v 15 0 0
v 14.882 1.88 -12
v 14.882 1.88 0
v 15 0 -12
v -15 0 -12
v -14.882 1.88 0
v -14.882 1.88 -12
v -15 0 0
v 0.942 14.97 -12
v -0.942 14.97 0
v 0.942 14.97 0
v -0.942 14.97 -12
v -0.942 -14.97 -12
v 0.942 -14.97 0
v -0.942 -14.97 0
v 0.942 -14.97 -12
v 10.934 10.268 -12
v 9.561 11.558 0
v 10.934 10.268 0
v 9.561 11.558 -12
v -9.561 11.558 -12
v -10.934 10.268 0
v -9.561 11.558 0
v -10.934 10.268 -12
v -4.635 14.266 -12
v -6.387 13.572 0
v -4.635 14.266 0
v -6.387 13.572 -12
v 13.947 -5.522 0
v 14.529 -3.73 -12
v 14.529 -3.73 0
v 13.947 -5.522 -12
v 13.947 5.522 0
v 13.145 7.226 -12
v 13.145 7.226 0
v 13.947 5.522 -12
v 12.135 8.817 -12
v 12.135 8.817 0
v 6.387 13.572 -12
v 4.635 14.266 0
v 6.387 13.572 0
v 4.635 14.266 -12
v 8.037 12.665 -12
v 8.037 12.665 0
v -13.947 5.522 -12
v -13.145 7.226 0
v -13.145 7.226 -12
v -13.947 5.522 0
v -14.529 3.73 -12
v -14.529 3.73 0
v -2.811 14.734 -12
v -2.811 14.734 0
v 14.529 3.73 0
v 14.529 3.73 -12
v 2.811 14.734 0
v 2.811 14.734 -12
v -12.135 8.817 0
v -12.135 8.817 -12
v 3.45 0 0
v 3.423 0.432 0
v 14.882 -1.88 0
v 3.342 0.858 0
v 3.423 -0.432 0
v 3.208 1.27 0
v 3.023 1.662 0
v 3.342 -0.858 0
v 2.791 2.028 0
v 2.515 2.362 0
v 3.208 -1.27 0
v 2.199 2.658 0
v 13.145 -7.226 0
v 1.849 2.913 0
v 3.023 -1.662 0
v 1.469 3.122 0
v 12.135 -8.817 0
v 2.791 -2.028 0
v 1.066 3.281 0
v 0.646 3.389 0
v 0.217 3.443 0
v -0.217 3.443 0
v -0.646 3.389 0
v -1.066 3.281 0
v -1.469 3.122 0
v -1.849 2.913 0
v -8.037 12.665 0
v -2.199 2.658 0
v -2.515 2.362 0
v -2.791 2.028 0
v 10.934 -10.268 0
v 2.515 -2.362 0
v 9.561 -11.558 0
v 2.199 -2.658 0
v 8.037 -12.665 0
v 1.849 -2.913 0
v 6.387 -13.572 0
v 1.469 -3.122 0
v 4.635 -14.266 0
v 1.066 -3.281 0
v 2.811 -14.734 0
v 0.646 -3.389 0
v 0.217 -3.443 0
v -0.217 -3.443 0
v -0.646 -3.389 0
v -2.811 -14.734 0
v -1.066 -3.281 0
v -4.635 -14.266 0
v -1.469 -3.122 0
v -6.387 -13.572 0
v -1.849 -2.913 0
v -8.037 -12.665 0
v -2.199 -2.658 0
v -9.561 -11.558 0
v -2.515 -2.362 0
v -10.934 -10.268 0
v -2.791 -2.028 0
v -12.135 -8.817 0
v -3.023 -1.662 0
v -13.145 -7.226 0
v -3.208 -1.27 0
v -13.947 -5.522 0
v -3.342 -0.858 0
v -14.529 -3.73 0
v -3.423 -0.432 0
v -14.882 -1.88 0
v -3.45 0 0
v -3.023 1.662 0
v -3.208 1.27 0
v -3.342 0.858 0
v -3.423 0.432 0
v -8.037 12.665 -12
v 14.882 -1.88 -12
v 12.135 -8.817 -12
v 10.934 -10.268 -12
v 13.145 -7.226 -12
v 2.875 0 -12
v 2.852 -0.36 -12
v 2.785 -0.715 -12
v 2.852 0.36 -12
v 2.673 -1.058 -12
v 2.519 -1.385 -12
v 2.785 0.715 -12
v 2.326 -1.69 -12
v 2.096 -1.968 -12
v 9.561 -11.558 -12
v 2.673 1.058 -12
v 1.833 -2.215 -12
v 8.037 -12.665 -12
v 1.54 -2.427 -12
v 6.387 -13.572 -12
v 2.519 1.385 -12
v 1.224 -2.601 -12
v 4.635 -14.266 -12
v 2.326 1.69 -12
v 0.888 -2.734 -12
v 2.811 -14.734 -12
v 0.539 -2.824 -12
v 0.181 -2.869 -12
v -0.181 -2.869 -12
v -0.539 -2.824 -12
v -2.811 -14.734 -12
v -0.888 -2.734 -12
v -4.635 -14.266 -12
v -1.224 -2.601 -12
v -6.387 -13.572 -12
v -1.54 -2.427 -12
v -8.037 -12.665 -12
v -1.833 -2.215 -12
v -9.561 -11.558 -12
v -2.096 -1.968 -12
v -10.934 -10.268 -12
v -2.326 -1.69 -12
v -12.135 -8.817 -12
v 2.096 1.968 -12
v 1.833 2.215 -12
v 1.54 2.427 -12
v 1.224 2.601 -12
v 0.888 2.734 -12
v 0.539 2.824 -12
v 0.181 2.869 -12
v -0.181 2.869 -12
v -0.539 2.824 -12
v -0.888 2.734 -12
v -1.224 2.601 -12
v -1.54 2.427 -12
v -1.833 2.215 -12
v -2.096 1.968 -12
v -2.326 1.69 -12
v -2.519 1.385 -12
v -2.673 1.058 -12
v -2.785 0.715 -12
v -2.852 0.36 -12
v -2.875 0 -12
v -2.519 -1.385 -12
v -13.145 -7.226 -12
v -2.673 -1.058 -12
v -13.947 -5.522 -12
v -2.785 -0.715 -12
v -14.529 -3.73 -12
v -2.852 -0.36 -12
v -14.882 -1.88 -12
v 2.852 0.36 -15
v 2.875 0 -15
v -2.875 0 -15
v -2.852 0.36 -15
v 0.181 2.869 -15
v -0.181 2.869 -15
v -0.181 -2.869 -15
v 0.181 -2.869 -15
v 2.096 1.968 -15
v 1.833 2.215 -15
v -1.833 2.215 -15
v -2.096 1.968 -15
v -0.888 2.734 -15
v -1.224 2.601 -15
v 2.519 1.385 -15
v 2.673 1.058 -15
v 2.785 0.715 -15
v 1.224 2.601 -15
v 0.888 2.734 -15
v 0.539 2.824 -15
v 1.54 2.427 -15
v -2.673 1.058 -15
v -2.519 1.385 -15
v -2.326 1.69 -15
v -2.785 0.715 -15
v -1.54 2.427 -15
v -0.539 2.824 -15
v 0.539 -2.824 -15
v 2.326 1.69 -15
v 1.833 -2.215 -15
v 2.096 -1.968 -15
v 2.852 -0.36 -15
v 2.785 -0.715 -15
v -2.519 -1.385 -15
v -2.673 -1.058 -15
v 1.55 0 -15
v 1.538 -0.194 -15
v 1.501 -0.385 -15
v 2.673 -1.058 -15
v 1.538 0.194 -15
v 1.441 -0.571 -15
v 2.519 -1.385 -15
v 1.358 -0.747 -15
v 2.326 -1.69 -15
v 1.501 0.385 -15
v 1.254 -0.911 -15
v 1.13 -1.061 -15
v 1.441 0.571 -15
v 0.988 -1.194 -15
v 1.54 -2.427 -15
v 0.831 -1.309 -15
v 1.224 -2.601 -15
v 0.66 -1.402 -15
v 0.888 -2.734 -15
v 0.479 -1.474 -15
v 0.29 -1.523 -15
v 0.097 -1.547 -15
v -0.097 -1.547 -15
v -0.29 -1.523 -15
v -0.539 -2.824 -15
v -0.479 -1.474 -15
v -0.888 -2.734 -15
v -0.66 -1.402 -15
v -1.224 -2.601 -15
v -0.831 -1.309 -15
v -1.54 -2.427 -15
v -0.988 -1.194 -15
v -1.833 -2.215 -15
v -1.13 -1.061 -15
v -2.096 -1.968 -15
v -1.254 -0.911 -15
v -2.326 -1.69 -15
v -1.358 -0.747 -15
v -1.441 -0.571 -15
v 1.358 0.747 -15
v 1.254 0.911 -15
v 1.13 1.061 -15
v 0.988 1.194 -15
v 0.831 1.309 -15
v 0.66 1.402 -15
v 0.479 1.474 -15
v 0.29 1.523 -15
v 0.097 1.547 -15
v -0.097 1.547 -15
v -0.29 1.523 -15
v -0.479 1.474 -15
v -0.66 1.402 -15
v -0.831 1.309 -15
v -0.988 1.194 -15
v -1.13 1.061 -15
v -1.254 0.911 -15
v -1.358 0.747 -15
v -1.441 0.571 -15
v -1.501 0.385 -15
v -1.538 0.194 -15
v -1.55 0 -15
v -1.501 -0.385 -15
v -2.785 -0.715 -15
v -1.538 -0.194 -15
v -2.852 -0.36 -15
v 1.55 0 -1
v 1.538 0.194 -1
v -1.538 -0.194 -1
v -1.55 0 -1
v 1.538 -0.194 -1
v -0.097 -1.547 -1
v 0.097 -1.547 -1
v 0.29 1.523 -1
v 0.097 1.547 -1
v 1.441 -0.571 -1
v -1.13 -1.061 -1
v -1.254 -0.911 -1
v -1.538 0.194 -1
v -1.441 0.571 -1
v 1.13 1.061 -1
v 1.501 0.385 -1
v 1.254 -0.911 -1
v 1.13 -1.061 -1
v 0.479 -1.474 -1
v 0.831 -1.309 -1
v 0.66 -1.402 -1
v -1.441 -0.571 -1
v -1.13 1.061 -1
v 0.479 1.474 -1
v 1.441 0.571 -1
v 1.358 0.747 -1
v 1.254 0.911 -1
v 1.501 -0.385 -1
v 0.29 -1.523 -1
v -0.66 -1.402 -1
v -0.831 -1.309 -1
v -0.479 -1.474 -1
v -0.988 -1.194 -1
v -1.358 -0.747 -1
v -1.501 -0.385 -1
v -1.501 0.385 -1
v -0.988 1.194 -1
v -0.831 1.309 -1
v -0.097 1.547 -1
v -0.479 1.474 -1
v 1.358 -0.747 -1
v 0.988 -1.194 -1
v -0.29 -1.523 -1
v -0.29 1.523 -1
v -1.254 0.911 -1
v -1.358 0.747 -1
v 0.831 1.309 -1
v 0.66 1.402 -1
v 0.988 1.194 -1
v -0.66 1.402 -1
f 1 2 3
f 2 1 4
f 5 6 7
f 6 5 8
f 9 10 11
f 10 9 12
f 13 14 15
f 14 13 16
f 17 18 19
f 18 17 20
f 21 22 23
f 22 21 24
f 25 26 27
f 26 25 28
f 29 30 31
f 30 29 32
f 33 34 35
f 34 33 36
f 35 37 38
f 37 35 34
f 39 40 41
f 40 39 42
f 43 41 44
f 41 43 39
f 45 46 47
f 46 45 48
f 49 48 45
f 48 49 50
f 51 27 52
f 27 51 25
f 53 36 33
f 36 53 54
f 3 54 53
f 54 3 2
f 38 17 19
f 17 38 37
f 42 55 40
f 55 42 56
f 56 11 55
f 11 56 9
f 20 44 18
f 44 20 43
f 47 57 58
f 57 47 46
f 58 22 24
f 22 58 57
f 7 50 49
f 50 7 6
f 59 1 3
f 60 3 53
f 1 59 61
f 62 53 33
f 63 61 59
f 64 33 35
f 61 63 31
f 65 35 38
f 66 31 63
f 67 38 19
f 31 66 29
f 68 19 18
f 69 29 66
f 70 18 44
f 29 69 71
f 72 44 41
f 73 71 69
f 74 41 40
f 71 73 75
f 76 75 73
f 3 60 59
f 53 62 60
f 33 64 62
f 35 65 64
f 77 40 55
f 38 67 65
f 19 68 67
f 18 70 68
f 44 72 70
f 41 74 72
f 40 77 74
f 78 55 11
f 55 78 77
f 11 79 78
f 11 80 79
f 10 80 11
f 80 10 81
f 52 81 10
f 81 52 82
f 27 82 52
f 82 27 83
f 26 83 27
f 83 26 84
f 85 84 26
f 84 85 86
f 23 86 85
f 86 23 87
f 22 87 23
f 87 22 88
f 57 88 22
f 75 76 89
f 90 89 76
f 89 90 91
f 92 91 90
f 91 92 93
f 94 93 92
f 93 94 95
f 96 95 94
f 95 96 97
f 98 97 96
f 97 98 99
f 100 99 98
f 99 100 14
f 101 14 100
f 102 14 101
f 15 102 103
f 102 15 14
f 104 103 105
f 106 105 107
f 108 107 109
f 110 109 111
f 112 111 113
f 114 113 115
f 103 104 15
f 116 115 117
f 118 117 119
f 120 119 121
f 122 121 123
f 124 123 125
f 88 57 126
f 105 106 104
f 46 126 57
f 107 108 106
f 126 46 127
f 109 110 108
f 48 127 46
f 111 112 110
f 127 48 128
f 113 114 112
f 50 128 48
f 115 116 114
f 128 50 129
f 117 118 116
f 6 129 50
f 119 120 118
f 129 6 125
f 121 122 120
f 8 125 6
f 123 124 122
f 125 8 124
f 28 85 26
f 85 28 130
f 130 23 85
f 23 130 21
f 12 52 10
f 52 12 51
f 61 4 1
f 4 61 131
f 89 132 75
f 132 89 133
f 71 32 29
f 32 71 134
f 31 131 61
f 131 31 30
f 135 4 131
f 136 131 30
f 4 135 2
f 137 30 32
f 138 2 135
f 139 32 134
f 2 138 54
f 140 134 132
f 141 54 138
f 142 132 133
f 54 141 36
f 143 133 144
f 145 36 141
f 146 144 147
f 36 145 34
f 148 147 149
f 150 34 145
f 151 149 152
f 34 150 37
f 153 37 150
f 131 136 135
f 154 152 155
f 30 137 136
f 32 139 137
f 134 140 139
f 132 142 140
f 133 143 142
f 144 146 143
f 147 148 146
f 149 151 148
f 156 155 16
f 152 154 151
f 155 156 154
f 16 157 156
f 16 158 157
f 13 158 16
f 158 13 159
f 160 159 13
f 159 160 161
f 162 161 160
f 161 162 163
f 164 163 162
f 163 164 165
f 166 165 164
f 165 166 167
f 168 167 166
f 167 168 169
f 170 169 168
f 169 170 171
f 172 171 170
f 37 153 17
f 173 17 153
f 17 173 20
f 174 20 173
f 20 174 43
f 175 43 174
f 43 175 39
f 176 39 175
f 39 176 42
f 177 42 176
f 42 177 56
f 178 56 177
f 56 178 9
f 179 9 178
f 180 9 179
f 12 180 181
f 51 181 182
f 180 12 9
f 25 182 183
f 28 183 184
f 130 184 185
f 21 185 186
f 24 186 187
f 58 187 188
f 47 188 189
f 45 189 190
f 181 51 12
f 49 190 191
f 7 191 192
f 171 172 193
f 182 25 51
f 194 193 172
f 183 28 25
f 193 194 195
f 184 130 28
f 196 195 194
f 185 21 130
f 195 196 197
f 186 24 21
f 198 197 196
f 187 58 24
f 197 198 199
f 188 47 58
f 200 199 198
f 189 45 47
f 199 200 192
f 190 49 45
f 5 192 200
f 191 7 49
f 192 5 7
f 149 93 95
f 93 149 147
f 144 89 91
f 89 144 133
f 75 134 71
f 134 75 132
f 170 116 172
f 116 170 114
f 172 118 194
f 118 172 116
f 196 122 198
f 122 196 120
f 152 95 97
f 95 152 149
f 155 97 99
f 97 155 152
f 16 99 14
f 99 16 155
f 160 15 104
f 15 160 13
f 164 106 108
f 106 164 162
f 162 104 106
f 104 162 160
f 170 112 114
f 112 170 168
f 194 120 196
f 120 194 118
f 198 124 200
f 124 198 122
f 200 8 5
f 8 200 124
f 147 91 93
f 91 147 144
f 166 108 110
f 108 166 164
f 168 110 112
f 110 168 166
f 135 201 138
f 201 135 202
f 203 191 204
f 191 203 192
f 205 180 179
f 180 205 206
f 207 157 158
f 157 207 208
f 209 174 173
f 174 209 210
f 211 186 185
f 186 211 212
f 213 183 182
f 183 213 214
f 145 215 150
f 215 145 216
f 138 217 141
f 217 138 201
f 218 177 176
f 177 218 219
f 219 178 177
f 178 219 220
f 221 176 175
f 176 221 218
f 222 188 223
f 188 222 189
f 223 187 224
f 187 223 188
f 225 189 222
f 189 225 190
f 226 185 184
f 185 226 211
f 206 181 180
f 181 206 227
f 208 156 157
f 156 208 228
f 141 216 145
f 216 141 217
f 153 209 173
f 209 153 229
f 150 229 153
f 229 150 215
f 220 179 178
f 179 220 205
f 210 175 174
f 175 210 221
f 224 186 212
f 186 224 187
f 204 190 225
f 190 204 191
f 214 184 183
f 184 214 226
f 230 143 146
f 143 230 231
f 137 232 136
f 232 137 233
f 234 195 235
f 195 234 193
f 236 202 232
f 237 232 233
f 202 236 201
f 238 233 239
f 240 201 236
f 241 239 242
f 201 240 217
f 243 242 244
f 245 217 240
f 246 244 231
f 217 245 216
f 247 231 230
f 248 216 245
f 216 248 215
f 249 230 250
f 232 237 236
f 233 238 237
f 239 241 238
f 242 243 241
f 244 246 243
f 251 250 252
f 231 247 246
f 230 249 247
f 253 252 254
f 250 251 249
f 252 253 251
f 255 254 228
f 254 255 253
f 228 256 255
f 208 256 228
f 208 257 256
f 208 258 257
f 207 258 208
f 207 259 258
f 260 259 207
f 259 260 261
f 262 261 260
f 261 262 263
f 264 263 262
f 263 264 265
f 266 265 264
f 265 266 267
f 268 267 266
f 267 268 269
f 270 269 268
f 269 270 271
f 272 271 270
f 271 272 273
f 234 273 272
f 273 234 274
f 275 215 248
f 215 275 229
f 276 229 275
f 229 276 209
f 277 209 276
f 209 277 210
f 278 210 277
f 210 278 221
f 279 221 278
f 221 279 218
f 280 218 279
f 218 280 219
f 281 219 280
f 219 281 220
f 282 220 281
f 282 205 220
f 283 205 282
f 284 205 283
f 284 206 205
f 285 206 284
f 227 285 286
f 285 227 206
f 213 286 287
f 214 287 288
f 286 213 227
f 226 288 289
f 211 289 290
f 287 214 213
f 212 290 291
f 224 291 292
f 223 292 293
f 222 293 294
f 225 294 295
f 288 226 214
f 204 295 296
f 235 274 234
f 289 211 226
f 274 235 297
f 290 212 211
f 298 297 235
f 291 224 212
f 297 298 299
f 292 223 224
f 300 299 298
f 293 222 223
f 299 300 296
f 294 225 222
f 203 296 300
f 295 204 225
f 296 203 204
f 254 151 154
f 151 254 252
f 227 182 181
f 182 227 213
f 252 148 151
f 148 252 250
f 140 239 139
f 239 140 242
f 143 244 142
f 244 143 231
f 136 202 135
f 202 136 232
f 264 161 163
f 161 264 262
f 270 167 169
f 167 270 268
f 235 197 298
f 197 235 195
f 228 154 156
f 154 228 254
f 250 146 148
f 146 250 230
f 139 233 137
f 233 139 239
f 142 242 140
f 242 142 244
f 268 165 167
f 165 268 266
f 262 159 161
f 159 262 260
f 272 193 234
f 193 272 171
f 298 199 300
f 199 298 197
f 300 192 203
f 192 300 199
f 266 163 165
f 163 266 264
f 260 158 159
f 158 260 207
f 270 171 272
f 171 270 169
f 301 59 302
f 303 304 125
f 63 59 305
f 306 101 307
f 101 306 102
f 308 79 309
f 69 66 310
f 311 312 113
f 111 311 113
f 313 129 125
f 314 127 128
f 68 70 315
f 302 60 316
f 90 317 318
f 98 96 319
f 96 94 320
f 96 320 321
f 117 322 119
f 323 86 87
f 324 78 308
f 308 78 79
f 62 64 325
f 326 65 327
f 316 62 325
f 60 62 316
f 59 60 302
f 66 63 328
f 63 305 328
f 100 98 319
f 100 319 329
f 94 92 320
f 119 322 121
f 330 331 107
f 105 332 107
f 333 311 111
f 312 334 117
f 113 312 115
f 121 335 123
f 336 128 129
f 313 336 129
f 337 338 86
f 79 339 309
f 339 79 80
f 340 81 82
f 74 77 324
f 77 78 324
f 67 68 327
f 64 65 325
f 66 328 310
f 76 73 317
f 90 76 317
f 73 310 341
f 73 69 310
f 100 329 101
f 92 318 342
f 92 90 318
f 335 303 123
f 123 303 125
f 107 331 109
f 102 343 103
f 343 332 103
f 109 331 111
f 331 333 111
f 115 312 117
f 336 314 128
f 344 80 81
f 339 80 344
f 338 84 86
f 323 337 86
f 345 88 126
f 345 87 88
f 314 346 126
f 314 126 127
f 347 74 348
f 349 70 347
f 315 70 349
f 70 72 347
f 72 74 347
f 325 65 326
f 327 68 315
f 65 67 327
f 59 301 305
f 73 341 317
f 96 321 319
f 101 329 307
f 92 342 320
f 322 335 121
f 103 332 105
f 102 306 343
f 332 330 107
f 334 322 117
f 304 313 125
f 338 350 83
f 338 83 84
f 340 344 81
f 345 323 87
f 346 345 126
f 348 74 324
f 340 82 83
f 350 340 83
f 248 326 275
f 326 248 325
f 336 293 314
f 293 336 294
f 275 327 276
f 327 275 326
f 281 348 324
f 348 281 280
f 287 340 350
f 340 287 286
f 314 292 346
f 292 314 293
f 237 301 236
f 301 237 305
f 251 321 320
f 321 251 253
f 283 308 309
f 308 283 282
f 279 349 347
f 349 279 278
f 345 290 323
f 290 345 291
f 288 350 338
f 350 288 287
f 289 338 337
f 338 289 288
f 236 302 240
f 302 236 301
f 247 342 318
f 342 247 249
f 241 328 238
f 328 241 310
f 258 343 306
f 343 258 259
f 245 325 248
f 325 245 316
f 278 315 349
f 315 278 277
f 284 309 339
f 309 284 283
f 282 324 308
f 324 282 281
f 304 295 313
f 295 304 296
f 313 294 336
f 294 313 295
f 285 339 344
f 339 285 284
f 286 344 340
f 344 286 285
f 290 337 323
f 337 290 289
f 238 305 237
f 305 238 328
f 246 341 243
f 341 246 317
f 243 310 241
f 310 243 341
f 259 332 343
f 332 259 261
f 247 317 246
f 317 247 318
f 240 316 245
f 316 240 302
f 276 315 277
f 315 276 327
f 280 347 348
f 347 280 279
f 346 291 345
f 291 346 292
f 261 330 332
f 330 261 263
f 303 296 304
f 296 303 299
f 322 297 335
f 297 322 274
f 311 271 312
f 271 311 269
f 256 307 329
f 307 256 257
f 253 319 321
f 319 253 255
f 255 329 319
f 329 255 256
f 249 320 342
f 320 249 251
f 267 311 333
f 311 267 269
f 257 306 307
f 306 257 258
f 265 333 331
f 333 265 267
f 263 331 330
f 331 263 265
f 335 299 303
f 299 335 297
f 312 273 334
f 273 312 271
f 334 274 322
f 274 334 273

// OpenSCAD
$fn = 50;


difference() {
	union() {
		translate(v = [0, 0, -12.0000000000]) {
			cylinder(h = 12, r = 15.0000000000);
		}
		translate(v = [0, 0, -15.0000000000]) {
			cylinder(h = 15, r = 2.8750000000);
		}
	}
	union() {
		translate(v = [0, 0, 0]) {
			rotate(a = [0, 0, 0]) {
				difference() {
					union() {
						translate(v = [0, 0, -15.0000000000]) {
							cylinder(h = 15, r = 1.2500000000);
						}
						translate(v = [0, 0, -1.0000000000]) {
							cylinder(h = 1.0000000000, r1 = 1.5500000000, r2 = 3.4500000000);
						}
						translate(v = [0, 0, -15.0000000000]) {
							cylinder(h = 15, r = 1.5500000000);
						}
						translate(v = [0, 0, -15.0000000000]) {
							cylinder(h = 15, r = 1.2500000000);
						}
					}
					union();
				}
			}
		}
	}
}
